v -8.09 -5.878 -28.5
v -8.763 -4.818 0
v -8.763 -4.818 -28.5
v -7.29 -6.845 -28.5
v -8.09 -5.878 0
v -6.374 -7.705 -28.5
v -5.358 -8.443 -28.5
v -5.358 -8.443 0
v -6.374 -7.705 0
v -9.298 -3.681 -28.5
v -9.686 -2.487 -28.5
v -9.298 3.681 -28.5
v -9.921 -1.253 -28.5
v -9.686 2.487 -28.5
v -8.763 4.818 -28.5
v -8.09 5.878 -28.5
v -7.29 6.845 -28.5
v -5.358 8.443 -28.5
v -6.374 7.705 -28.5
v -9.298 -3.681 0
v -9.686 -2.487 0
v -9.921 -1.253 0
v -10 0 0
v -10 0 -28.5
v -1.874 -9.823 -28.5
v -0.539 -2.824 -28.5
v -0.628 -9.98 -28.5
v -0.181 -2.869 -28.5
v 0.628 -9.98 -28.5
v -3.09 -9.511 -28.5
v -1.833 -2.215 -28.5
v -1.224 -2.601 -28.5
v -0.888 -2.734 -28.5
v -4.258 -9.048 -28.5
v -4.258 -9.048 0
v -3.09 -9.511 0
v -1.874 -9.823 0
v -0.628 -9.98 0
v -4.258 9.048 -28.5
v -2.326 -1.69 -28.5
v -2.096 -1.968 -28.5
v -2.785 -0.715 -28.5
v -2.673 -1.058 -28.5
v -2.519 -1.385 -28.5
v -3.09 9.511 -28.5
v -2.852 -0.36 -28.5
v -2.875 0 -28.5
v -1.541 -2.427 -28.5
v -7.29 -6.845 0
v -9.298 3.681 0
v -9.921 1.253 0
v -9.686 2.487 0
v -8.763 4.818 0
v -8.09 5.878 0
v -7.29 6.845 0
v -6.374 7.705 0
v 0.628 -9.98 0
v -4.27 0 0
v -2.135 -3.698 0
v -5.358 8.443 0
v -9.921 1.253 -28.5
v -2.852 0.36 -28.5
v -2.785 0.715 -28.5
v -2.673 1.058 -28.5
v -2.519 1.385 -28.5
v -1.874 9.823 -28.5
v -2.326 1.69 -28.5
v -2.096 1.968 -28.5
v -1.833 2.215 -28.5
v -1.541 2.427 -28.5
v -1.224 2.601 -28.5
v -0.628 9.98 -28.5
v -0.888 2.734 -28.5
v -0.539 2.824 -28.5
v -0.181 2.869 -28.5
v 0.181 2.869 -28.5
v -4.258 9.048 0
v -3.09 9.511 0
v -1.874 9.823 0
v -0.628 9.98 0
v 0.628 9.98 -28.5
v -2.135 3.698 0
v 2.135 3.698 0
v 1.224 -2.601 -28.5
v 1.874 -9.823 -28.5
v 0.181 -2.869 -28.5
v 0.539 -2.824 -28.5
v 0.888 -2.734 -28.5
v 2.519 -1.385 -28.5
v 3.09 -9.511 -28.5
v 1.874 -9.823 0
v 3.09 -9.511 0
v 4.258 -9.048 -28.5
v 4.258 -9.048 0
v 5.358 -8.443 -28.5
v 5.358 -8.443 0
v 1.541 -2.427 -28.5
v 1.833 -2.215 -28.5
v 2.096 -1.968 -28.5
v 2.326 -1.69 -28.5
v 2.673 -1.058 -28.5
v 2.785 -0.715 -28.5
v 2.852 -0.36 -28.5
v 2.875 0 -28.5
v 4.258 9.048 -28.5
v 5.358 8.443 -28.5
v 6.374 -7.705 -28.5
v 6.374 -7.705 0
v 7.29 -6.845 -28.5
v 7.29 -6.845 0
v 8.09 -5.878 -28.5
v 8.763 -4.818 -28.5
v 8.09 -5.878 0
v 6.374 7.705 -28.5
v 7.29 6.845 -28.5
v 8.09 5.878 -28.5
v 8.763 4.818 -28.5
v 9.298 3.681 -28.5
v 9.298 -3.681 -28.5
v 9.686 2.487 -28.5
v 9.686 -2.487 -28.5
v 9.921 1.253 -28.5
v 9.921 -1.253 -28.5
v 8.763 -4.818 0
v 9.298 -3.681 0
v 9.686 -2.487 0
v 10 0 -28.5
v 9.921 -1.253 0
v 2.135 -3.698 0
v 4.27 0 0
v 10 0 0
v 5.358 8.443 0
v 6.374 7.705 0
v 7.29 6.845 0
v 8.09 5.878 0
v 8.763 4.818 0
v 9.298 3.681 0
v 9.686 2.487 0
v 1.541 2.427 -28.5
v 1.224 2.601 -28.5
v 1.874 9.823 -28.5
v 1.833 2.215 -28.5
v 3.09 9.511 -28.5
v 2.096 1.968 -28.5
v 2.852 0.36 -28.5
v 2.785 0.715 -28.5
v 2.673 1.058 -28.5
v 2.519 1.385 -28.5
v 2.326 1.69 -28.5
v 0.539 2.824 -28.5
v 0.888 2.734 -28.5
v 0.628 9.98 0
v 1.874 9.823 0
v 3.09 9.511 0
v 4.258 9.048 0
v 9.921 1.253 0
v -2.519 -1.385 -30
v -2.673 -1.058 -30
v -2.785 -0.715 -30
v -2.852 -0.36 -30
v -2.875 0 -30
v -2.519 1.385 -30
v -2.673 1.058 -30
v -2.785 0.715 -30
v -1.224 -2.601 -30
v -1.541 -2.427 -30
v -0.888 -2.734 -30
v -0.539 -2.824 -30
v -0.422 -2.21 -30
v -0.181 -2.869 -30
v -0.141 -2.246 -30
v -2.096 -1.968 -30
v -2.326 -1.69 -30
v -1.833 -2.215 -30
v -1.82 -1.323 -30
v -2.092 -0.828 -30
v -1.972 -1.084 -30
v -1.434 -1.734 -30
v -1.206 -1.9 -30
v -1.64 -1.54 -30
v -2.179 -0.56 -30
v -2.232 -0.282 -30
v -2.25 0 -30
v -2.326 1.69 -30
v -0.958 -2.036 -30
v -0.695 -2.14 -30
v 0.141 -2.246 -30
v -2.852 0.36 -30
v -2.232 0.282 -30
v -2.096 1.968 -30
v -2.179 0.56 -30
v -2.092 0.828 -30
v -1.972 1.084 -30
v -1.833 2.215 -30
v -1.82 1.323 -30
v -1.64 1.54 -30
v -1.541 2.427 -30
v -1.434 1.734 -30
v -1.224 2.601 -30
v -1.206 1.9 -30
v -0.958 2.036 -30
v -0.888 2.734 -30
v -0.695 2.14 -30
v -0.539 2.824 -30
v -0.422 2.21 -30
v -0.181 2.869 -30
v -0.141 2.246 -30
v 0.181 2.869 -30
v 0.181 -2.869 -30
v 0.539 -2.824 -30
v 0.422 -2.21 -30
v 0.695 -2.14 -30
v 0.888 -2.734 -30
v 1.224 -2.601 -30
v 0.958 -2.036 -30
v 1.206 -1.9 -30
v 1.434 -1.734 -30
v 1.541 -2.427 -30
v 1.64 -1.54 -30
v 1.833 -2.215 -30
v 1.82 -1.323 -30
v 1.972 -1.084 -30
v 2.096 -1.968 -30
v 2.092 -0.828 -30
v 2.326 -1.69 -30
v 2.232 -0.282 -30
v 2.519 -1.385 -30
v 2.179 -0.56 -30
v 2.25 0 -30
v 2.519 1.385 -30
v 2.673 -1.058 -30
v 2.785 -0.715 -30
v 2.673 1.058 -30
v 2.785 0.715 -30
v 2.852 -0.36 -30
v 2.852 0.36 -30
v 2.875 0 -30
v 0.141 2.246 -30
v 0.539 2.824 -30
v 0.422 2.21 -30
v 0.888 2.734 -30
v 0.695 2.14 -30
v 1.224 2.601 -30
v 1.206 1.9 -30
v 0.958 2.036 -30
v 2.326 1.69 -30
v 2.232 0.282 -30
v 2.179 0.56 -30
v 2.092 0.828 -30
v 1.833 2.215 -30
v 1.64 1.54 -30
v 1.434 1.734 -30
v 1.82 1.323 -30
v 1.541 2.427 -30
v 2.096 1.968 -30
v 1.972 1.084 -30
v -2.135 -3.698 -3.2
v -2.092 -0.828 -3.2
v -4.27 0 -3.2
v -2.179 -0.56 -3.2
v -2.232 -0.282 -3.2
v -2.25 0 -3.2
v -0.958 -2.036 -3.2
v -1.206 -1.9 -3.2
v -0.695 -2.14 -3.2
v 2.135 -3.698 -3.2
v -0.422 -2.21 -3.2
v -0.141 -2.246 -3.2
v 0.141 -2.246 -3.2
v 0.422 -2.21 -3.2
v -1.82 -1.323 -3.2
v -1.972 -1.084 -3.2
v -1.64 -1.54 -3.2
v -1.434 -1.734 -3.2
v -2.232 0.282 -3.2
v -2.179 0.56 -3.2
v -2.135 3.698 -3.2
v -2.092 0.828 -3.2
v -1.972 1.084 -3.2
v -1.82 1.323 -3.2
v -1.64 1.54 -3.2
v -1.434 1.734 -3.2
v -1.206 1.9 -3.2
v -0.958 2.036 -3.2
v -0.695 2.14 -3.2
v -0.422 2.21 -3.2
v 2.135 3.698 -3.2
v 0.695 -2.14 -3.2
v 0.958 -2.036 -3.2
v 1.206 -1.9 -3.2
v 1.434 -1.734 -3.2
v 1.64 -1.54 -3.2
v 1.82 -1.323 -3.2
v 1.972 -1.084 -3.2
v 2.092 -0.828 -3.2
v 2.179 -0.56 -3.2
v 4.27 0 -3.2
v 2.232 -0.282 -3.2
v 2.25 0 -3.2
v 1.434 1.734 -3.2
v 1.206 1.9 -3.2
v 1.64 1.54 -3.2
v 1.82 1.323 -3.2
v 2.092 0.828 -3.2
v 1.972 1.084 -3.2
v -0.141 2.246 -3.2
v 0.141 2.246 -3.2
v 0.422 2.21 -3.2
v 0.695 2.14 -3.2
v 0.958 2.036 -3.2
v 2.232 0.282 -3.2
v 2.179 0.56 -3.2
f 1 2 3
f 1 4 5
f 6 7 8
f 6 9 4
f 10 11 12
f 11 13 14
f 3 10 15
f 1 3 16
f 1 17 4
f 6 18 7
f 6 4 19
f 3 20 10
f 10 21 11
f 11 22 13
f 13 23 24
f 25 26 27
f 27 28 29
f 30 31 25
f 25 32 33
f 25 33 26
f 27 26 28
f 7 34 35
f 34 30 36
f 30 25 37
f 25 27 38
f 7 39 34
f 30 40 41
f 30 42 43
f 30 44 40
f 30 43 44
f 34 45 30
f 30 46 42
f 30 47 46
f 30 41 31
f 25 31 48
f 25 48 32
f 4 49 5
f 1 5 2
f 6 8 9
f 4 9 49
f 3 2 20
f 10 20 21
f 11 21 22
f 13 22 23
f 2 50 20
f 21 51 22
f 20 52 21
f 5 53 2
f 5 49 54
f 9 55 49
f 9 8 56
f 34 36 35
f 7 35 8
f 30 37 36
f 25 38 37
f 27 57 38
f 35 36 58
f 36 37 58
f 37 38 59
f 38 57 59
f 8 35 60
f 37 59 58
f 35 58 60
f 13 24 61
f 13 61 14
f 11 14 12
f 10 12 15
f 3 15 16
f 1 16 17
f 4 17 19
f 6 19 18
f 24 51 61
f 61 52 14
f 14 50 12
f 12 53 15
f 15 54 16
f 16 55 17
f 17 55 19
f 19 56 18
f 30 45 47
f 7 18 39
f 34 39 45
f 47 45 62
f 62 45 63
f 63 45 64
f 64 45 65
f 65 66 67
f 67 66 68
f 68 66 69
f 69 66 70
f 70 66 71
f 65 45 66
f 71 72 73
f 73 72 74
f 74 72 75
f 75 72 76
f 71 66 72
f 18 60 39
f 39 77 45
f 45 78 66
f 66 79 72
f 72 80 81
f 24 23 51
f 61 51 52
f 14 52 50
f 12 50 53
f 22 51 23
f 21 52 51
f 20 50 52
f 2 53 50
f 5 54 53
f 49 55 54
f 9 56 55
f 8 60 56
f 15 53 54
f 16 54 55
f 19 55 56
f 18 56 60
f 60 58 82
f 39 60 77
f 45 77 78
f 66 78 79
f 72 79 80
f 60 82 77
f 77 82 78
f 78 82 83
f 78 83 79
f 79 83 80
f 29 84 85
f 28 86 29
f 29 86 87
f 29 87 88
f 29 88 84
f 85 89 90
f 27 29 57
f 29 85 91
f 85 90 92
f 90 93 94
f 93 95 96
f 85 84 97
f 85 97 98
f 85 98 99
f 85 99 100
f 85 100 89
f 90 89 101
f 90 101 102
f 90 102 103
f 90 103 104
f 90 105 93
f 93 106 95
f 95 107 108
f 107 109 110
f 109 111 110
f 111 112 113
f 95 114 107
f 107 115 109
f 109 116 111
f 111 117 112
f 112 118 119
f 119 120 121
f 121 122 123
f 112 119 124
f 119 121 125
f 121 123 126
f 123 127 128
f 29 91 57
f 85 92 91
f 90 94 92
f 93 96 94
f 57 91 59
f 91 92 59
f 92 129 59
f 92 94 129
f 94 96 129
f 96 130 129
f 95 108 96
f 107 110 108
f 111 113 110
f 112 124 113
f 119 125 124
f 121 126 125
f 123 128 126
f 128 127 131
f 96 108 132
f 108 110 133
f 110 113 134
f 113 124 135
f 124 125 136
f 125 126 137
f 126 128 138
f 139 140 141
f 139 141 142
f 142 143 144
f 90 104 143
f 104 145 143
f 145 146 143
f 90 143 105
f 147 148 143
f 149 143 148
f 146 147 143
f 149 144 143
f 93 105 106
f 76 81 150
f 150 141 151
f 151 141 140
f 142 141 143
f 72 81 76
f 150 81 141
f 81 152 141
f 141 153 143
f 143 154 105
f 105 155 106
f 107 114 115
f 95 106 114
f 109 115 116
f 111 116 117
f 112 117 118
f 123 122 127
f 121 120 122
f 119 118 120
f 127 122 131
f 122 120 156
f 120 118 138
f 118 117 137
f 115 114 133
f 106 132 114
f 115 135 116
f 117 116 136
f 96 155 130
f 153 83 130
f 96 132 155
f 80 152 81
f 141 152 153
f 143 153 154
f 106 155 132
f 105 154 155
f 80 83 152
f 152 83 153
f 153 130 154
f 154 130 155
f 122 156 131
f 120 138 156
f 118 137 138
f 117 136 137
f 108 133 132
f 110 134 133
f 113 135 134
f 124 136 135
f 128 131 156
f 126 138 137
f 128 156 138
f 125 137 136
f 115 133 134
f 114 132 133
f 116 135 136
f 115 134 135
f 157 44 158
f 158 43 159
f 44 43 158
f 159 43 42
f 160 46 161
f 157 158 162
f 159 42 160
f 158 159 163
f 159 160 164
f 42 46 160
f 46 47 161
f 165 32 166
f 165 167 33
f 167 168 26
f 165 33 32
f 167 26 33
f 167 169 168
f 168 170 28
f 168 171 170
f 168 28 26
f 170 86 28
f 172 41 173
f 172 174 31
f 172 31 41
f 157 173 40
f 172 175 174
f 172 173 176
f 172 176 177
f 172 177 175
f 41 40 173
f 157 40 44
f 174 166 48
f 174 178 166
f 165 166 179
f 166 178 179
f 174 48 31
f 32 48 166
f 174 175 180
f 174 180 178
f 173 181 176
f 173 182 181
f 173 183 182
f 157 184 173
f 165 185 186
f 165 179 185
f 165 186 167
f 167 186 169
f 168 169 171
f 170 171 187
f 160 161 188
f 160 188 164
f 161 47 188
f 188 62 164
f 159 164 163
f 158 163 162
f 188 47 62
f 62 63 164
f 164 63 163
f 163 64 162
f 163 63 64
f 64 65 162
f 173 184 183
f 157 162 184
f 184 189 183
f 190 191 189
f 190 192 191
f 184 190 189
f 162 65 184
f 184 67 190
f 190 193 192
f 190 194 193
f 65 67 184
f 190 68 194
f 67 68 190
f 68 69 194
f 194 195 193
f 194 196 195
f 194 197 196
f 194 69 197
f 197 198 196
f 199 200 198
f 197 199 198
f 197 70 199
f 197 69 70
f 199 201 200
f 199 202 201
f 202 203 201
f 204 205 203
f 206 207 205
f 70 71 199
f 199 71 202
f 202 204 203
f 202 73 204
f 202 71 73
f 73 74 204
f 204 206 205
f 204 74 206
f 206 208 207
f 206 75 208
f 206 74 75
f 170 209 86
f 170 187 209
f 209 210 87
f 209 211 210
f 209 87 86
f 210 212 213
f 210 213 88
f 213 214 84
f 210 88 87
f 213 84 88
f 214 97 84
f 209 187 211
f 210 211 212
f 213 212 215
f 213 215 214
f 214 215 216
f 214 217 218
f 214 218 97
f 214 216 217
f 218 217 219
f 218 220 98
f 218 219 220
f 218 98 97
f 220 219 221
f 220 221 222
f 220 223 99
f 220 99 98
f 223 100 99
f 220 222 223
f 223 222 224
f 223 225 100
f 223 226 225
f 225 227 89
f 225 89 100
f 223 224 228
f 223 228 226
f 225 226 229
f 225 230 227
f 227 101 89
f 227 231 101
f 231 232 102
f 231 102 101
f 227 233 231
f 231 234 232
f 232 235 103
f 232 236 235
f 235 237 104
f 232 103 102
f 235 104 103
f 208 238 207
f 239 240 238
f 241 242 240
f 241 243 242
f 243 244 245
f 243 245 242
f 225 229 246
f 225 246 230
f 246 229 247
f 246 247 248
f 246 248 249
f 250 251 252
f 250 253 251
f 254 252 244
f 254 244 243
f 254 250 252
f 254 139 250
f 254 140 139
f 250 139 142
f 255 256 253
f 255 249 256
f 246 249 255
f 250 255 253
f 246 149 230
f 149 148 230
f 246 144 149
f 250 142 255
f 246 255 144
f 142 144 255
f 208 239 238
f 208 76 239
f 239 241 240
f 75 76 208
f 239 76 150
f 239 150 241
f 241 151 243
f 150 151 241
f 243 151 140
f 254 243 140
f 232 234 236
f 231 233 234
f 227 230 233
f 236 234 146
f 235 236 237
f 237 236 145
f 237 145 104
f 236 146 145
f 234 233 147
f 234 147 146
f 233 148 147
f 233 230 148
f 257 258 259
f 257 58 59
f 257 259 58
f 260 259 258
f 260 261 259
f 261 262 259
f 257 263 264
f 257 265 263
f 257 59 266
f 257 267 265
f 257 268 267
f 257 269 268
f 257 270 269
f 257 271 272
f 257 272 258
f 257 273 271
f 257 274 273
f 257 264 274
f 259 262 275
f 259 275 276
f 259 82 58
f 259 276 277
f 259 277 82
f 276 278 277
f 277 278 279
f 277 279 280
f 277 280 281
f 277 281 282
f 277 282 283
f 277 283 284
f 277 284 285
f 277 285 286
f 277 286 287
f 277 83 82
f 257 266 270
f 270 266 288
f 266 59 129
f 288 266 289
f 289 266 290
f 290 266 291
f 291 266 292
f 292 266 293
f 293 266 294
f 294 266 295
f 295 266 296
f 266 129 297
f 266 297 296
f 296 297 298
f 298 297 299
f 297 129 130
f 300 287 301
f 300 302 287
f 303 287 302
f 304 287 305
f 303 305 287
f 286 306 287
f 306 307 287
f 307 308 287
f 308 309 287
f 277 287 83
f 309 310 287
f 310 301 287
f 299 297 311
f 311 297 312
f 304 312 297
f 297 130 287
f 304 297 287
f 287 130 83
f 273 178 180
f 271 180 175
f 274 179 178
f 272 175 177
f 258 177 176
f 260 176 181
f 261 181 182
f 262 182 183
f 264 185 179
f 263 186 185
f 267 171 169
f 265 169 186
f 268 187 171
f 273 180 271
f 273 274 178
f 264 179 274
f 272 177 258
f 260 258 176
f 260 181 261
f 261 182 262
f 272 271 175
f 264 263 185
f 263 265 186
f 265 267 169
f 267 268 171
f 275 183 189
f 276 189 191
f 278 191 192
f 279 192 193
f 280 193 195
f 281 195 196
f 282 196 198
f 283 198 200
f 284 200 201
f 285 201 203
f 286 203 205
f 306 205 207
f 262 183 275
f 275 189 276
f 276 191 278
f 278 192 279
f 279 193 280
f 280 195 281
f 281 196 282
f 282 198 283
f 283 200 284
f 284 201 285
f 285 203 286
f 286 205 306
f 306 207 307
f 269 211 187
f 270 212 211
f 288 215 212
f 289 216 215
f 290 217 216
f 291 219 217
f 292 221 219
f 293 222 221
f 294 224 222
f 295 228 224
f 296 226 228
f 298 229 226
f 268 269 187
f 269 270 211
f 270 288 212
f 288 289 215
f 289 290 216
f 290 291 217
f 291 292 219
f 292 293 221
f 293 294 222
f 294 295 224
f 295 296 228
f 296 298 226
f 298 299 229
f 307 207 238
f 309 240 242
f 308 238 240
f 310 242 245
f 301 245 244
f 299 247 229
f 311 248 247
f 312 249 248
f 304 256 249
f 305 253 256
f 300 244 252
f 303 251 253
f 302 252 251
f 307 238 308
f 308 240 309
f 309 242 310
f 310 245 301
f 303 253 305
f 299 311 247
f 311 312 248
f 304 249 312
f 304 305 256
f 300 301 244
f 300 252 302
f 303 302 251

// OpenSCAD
$fn = 50;

difference() {
	union() {
		translate(v = [0, 0, -28.5]) {
			cylinder(h = 28.5, r = 10.0);
		}
		#translate(v = [0, 0, -30.0]) {
			cylinder(h = 30, r = 2.875);
		}
	}
	union() {
		translate(v = [0, 0, 0]) {
			rotate(a = [0, 0, 0]) {
				difference() {
					union() {
						translate(v = [0, 0, -3.2]) {
							linear_extrude(height = 3.2) {
								polygon(points = [[4.2698, 0.0], [2.1349000000000005, 3.697755269078796], [-2.134899999999999, 3.6977552690787965], [-4.2698, 5.228996902999369e-16], [-2.134900000000002, -3.6977552690787956], [2.1348999999999974, -3.697755269078798]]);
							}
						}
					}
					union();
				}
			}
		}
		#translate(v = [0, 0, -100.0]) {
			cylinder(h = 200, r = 2.25);
		}
	}
}
